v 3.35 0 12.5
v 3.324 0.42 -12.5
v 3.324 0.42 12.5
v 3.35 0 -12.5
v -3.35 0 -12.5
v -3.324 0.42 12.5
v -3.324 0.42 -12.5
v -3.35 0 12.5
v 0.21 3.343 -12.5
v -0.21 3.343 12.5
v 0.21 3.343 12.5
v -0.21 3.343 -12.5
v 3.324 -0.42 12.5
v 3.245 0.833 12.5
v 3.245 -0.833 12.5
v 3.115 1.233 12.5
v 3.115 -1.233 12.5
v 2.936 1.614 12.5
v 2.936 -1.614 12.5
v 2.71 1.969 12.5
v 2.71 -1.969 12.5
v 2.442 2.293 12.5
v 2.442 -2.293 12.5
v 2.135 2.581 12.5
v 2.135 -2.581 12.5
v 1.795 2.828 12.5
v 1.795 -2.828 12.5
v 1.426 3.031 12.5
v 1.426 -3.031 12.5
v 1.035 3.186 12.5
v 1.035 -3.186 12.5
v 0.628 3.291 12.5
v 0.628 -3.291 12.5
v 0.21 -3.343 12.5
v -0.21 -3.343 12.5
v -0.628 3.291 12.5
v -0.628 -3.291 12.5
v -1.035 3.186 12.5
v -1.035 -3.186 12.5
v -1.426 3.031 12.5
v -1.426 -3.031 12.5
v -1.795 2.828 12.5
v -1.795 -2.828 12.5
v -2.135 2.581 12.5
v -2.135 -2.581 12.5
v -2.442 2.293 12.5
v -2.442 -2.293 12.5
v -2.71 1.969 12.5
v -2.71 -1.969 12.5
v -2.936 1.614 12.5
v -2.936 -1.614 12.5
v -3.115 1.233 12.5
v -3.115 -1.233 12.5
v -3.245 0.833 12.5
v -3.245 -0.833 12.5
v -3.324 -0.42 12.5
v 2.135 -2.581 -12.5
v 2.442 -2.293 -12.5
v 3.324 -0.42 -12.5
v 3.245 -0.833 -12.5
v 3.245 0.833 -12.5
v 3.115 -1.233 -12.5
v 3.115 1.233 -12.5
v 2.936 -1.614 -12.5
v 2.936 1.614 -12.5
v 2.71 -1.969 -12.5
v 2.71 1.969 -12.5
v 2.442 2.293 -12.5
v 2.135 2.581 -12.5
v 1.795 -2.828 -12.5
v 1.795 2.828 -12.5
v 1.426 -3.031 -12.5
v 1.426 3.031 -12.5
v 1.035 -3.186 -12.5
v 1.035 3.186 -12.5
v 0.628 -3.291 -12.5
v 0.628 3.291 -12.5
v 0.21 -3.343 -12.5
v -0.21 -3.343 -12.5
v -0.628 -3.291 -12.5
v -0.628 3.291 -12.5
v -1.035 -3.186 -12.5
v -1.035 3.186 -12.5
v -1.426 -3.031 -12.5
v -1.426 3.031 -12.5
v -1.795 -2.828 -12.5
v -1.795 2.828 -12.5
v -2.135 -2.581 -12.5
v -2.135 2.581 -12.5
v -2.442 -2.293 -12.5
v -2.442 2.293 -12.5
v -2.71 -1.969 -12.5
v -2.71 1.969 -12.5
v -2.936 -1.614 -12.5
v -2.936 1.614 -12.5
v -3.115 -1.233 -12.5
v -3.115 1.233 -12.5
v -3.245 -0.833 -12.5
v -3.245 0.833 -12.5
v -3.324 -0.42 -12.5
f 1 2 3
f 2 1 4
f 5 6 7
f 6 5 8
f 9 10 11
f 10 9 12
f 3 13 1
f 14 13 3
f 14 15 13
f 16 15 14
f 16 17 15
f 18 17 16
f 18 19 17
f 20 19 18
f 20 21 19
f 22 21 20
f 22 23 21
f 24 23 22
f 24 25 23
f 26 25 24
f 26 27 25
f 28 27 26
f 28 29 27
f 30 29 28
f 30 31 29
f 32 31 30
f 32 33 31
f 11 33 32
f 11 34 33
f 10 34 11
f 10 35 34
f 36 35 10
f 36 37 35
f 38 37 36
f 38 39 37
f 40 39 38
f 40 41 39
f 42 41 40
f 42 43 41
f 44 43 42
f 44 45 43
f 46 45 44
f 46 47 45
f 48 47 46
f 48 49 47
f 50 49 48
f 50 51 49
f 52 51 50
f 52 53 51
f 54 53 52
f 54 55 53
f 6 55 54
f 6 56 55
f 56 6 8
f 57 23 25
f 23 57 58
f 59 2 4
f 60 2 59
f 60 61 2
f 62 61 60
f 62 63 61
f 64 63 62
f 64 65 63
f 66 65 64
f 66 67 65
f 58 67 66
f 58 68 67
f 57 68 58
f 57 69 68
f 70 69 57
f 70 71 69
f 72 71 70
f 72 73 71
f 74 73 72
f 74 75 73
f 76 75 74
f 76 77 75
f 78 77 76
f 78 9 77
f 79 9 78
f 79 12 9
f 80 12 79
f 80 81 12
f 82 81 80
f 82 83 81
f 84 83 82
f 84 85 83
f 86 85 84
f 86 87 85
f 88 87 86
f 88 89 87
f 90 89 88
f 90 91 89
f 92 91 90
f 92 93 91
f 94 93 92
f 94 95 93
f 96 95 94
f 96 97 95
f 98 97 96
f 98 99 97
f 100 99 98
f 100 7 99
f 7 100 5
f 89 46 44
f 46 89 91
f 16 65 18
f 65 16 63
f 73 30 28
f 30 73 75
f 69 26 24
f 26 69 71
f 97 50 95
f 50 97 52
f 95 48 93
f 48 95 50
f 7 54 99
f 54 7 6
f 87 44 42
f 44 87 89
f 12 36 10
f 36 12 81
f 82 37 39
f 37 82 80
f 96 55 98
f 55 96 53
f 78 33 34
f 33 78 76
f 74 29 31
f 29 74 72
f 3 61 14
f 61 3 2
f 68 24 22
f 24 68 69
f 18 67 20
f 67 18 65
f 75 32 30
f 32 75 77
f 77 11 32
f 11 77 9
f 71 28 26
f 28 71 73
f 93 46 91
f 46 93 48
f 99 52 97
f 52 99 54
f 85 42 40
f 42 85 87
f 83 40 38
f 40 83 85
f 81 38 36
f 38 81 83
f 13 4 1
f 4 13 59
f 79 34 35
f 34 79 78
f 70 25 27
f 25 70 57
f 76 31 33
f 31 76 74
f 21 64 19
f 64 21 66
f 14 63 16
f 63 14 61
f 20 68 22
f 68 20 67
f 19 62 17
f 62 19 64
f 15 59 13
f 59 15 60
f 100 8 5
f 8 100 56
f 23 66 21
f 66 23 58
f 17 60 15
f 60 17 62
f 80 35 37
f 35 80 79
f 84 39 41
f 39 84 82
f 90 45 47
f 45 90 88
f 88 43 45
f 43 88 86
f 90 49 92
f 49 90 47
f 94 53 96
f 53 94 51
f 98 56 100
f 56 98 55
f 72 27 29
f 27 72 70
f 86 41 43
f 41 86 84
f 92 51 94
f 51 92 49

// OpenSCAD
$fn = 50;


difference() {
	union() {
		translate(v = [0, 0, -12.5000000000]) {
			cylinder(h = 25, r = 3.3500000000);
		}
	}
	union() {
		translate(v = [0, 0, -100.0000000000]) {
			cylinder(h = 200, r = 0);
		}
	}
}
